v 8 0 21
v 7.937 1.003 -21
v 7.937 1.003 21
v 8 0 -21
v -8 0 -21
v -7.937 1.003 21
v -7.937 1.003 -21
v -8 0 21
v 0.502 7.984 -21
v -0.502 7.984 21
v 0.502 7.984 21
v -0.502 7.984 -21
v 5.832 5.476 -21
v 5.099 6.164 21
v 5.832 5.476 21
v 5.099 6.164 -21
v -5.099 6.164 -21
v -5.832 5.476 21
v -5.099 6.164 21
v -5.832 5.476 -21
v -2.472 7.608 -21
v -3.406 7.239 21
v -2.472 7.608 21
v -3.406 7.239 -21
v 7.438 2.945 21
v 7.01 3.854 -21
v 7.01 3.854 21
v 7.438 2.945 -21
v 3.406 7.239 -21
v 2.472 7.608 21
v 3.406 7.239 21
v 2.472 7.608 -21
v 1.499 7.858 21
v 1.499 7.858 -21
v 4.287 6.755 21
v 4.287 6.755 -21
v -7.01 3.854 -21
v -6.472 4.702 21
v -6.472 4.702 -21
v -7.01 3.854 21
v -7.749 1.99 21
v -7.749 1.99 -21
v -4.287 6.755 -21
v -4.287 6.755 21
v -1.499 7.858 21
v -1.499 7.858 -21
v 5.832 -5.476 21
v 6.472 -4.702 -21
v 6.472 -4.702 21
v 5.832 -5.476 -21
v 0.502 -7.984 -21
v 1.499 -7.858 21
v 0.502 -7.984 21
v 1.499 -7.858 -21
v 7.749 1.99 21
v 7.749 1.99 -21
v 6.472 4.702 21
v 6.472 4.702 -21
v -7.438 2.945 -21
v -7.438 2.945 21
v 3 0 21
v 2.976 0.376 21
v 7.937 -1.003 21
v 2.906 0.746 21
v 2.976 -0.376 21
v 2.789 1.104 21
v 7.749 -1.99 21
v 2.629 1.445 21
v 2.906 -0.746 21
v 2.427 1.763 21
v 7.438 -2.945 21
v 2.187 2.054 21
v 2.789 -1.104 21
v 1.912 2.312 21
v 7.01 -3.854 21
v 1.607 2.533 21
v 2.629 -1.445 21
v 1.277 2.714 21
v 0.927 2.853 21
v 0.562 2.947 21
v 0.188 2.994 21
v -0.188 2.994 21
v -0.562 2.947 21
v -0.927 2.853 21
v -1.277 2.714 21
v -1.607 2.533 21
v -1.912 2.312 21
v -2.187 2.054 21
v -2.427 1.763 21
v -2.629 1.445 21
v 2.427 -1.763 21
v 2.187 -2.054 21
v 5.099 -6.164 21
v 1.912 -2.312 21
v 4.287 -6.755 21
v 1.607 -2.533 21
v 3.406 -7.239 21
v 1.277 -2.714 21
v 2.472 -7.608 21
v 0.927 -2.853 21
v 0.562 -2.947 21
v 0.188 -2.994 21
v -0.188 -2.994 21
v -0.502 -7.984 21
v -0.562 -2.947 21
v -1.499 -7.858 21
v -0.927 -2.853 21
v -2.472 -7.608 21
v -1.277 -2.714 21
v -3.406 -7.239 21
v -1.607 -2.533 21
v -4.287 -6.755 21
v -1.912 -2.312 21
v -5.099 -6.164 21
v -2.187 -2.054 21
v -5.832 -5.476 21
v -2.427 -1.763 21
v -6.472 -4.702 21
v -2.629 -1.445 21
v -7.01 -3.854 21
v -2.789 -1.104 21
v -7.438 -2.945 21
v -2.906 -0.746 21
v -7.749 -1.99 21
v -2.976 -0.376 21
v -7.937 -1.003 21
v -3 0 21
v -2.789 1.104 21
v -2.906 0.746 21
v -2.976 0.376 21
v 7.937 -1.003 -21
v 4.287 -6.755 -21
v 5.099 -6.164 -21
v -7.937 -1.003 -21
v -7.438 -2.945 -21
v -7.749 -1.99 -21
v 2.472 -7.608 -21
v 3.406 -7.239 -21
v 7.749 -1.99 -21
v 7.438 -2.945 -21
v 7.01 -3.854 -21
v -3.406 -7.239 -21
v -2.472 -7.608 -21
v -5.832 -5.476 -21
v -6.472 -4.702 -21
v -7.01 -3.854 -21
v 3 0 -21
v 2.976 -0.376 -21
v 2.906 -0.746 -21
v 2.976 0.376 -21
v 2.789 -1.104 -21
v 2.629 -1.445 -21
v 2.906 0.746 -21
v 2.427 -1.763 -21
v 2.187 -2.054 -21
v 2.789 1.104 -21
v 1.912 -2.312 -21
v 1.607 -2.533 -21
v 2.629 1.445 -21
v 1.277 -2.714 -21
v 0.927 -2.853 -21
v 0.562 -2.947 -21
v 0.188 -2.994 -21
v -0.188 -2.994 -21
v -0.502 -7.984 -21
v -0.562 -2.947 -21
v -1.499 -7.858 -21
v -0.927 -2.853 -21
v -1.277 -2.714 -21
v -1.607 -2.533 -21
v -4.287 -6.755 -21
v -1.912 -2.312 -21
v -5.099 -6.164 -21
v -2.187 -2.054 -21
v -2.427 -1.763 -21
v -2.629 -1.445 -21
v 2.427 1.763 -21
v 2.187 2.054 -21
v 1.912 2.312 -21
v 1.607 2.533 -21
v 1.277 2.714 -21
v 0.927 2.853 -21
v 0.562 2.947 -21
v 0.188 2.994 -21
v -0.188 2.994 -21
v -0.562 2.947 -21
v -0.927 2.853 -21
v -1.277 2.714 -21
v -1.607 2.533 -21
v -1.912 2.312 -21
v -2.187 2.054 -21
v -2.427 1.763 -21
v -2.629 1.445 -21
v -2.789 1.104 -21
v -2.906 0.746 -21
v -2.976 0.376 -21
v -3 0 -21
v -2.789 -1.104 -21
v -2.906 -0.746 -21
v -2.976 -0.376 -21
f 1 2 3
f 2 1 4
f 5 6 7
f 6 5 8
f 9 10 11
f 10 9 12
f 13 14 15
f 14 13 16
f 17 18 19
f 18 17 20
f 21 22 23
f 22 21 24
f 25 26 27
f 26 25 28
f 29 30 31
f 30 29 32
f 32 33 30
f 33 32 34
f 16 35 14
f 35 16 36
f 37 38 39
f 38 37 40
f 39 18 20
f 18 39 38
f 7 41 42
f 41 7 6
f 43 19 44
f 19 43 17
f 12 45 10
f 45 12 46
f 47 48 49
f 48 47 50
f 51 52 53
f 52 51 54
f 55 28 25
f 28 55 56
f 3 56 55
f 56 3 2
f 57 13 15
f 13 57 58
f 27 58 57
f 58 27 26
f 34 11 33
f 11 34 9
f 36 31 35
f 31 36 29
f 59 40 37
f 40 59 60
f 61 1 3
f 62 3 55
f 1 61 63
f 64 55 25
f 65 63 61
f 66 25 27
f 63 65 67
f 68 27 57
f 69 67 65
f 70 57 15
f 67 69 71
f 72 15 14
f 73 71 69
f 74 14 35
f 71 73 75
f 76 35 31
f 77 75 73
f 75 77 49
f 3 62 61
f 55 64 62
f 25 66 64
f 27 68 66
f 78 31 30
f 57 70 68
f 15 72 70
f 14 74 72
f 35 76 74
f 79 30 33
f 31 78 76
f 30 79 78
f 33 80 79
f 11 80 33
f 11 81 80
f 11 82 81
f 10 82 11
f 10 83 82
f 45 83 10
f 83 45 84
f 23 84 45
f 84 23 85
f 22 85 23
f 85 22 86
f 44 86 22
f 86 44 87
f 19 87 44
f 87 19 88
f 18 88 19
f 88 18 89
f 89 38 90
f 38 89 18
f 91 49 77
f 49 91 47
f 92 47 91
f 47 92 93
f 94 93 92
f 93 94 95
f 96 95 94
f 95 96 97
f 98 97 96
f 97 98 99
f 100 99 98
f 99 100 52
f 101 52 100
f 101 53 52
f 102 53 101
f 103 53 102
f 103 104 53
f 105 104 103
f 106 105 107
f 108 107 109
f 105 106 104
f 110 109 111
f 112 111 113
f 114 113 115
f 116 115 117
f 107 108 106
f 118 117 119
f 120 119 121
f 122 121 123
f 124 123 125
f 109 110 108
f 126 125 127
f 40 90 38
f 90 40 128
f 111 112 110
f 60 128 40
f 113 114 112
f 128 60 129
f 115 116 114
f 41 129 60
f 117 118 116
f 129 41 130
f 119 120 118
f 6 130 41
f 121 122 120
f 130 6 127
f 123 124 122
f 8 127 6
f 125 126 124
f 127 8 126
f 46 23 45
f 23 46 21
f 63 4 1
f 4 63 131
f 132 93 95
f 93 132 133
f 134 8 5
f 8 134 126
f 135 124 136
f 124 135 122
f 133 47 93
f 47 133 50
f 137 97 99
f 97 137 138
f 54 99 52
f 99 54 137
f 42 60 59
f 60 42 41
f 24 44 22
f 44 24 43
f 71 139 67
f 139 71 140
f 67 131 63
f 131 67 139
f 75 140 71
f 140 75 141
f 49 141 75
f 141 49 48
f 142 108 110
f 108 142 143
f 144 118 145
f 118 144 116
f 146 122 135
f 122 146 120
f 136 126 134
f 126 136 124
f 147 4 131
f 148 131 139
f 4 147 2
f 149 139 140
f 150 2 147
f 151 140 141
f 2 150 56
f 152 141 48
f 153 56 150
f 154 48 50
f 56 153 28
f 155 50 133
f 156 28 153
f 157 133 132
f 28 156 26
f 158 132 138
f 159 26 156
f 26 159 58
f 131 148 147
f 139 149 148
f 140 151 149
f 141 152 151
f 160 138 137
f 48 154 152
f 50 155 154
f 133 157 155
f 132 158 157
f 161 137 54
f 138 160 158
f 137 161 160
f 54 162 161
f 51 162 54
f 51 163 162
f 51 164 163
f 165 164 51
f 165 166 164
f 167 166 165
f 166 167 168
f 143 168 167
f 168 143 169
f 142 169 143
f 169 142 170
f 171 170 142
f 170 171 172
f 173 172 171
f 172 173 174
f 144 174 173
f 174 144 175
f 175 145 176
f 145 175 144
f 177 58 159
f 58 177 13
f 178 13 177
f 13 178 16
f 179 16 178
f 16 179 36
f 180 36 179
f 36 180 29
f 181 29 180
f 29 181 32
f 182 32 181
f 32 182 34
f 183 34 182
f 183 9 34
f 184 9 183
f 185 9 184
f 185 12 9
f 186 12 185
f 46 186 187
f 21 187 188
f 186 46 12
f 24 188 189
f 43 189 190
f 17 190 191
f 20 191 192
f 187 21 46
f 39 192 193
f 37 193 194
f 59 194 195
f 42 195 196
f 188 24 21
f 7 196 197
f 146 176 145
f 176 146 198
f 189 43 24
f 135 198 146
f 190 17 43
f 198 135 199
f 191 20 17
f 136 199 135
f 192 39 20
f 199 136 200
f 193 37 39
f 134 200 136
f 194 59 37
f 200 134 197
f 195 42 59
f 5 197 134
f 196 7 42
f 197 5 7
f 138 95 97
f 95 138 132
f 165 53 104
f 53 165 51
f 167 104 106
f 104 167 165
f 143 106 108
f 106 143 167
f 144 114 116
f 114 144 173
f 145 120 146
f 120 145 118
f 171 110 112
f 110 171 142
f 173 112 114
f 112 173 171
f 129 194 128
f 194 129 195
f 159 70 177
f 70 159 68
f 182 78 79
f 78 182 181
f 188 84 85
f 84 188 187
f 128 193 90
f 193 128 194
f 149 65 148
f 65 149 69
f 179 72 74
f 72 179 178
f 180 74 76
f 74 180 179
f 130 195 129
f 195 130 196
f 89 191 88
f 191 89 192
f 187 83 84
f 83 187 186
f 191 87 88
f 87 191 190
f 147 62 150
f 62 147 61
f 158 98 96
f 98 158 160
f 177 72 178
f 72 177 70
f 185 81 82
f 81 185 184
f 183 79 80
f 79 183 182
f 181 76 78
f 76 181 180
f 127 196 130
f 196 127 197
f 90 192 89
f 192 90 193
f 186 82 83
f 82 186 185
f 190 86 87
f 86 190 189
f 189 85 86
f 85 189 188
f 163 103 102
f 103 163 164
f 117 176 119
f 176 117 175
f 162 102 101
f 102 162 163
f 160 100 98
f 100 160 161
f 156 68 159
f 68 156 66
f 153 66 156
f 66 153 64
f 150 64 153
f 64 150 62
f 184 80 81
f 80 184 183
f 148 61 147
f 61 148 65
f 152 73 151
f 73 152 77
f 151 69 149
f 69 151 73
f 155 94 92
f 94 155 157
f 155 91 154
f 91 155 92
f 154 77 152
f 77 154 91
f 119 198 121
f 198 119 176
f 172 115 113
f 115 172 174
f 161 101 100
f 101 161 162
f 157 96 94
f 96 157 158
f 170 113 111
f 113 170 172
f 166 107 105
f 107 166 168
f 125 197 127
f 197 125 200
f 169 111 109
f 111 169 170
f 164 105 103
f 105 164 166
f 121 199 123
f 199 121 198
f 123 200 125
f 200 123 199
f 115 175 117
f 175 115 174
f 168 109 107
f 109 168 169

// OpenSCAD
$fn = 50;


difference() {
	union() {
		translate(v = [0, 0, -21.0000000000]) {
			cylinder(h = 42, r = 8.0000000000);
		}
	}
	union() {
		translate(v = [0, 0, -100.0000000000]) {
			cylinder(h = 200, r = 3.0000000000);
		}
	}
}
